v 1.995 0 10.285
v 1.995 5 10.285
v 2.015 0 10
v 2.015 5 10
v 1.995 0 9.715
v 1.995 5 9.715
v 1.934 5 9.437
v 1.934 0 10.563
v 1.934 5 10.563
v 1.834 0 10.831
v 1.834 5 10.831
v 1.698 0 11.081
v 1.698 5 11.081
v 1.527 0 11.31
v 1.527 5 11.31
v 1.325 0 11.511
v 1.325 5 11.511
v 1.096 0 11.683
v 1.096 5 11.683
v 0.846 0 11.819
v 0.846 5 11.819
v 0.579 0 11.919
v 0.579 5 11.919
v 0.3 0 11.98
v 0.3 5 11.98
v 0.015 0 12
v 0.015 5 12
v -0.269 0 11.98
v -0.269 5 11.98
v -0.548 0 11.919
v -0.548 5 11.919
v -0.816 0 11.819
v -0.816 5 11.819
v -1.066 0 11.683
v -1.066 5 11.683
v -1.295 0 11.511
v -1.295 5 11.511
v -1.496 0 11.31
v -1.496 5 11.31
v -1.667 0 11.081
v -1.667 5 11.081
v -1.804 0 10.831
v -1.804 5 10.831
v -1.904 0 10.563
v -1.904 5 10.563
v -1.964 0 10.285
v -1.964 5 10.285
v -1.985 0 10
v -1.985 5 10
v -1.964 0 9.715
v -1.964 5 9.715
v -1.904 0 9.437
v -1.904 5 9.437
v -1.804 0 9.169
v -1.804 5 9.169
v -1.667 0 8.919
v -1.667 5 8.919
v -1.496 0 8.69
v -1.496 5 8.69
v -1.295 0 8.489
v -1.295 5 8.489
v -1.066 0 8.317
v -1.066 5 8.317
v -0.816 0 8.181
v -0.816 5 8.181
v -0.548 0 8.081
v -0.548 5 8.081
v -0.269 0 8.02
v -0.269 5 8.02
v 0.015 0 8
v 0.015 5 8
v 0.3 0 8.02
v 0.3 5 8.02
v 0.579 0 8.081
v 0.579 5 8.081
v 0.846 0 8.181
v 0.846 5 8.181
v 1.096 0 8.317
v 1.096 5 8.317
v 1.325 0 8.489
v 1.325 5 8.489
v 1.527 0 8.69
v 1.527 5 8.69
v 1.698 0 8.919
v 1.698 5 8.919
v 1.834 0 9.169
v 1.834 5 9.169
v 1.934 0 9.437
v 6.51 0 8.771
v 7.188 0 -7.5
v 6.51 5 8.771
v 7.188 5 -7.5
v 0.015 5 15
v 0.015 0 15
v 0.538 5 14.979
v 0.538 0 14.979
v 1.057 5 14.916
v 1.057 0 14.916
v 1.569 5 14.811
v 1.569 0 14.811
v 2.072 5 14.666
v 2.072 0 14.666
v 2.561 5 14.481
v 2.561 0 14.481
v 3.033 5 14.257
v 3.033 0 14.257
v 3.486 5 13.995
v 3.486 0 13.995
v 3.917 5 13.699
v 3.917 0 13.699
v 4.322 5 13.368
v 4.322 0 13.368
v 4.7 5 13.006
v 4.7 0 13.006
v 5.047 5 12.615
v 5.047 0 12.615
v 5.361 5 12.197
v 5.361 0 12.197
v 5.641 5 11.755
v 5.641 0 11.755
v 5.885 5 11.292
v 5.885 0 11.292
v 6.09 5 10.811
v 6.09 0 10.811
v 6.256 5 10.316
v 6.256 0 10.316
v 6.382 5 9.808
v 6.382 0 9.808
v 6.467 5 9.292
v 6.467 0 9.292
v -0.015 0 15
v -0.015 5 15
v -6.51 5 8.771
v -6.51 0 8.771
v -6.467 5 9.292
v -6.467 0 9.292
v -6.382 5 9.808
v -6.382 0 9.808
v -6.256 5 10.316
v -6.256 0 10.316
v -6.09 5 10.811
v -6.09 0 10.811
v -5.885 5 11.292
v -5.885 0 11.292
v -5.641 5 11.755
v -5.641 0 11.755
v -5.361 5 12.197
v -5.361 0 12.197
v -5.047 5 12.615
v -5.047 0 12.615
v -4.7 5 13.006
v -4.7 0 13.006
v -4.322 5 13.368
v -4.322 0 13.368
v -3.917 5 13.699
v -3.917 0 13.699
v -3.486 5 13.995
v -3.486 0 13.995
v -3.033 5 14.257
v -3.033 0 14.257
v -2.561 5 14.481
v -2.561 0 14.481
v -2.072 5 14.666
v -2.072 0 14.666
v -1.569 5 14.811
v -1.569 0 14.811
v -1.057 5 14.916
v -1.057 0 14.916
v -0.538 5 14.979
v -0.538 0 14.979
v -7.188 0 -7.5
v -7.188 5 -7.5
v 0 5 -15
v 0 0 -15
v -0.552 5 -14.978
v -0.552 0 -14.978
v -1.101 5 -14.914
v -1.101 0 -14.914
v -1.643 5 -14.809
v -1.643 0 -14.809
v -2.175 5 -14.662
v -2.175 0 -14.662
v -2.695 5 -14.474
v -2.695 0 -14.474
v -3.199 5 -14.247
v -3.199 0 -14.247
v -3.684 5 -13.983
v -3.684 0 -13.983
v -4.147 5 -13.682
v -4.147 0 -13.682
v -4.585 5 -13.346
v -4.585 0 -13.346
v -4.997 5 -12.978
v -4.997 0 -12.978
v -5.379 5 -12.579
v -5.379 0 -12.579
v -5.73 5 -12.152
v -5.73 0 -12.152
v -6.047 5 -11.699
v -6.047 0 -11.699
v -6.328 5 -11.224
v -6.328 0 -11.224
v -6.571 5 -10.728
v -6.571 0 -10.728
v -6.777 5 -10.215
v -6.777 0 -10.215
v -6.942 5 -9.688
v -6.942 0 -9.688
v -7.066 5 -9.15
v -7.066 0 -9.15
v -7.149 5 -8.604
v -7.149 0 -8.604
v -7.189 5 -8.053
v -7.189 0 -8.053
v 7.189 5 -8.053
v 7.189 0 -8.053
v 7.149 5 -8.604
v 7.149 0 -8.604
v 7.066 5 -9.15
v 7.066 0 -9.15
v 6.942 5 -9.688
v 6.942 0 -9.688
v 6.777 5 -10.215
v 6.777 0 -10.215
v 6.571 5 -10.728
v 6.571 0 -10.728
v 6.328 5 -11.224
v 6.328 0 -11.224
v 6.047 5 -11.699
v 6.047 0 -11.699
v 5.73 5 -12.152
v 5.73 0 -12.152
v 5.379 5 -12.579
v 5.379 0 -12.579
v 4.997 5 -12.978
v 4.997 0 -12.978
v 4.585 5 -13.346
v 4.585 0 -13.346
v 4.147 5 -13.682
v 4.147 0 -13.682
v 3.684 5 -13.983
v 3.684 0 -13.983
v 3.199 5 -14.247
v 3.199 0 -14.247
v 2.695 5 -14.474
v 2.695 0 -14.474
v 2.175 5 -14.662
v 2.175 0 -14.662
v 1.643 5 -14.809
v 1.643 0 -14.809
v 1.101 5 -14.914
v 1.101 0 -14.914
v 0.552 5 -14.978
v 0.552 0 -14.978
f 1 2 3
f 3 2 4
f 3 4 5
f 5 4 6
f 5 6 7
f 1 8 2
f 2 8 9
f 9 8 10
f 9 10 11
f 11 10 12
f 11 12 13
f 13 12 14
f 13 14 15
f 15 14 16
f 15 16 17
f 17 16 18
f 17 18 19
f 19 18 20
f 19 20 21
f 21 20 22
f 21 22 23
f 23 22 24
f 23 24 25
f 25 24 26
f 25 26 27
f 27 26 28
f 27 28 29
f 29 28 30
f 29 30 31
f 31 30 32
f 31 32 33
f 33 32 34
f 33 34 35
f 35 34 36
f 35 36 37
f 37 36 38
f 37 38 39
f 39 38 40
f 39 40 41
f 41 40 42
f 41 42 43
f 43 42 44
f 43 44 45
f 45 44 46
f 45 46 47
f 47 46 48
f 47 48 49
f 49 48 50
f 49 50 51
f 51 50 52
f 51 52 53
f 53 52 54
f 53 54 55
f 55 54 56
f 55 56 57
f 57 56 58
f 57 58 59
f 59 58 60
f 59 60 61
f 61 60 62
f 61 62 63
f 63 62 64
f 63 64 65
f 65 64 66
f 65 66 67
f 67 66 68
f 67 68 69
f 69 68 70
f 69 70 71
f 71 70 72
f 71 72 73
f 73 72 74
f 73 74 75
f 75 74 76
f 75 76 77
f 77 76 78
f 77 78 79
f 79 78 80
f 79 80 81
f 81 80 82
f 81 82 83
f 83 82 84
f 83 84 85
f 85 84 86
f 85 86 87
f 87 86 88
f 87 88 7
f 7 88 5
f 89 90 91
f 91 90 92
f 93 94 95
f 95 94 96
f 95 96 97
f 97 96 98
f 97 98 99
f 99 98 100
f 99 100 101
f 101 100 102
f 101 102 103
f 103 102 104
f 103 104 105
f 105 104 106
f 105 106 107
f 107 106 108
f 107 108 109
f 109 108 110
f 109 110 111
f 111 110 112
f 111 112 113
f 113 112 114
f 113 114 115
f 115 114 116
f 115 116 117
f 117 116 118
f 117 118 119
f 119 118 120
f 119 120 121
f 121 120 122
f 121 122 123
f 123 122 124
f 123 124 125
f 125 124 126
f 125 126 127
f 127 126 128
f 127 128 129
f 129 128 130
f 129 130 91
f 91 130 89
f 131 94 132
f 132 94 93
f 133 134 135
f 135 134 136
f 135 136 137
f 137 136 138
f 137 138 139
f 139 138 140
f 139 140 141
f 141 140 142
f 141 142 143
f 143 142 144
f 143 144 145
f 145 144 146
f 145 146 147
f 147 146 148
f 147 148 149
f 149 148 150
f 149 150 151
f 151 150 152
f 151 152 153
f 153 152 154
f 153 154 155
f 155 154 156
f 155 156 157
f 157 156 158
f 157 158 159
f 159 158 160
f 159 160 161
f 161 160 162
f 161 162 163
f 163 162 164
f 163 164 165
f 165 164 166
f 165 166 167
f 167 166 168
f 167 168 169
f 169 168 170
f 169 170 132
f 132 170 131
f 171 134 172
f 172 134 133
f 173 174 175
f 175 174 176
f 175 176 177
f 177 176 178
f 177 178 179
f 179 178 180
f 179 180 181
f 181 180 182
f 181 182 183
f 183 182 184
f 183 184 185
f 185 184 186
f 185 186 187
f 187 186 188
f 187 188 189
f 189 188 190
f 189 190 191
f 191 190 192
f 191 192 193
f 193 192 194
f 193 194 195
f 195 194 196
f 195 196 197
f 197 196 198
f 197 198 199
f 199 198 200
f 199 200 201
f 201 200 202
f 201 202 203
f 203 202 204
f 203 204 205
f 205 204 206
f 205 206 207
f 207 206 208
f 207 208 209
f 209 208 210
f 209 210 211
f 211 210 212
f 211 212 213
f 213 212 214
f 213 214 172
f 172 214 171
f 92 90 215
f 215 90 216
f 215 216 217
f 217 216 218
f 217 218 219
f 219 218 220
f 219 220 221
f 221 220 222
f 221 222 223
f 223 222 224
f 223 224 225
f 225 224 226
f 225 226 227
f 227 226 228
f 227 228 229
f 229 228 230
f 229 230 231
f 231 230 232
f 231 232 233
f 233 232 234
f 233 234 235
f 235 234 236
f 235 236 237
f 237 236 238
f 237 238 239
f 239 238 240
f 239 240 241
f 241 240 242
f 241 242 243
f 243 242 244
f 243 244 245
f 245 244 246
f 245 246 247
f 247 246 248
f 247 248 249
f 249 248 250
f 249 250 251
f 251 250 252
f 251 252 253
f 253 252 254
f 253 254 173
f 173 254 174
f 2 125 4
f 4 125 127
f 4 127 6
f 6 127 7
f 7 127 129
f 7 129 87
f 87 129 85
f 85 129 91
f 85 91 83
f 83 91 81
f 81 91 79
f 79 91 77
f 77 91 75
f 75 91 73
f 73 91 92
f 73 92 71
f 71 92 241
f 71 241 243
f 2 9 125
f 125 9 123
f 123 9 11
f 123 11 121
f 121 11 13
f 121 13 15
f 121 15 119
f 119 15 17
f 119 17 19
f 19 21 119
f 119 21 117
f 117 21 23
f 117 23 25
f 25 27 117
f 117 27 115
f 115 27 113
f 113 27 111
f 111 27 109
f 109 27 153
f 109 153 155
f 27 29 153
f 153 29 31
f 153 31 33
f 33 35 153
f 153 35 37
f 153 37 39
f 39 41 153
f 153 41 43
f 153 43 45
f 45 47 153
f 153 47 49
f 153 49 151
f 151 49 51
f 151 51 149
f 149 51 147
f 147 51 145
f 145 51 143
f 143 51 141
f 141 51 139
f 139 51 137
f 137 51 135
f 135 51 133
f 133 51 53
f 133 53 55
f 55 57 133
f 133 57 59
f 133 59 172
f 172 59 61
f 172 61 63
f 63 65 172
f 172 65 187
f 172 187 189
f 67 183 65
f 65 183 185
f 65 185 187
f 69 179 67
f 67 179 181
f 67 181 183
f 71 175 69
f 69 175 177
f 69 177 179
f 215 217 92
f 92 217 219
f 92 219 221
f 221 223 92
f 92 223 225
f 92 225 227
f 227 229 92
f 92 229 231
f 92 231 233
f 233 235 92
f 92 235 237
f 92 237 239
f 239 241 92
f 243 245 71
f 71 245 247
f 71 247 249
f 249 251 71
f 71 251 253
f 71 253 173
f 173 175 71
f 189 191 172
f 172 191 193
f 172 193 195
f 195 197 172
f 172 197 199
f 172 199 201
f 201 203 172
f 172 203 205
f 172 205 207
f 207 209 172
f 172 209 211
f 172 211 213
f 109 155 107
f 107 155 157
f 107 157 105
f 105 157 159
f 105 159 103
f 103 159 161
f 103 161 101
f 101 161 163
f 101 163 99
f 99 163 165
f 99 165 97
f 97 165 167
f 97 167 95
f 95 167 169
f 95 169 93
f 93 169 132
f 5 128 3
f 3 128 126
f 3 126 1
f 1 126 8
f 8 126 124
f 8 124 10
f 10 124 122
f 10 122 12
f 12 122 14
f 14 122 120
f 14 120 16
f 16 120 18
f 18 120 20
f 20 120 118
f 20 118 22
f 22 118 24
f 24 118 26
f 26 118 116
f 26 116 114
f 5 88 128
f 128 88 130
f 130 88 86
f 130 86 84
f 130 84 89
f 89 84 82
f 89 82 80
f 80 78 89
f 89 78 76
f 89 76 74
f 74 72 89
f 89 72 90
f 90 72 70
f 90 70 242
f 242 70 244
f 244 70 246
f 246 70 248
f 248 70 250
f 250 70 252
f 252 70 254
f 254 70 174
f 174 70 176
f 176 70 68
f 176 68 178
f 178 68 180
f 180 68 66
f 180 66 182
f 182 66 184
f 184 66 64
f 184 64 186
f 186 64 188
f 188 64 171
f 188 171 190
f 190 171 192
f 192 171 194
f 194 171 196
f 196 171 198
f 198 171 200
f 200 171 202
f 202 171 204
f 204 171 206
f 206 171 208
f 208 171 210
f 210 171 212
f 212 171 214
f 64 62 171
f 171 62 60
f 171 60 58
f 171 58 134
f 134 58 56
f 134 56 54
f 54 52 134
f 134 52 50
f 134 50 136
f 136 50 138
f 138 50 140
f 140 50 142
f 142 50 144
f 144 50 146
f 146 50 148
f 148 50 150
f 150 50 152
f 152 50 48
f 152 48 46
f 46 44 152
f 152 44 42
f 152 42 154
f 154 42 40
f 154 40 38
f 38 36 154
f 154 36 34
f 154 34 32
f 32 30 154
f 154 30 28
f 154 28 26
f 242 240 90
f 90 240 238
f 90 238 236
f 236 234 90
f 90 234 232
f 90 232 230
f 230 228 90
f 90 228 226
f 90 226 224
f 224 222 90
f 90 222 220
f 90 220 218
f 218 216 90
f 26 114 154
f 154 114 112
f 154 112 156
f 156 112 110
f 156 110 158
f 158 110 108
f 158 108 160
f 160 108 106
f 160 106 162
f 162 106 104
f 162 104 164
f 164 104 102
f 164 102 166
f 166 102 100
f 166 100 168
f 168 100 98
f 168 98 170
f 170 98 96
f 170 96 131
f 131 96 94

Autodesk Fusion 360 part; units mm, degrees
sketch "Sketch1" plane through (0, 0, 0) normal (0, 1, 0) x (1, 0, 0)
  line L0 (-0.0152, -15) -> (0.0152, -15)
  line L1 (0.0062, 15) -> (-0.0062, 15)
  line L2 (0, 15) -> (0, -15) construction
  line L3 (-7.1875, 7.5003) -> (-6.5096, -8.7706)
  line L4 (7.1875, 7.5003) -> (6.5096, -8.7706)
  arc A0 (0.0062, 15) -> (-7.1875, 7.5003) centre (0.0062, 7.8) ccw
  arc A1 (7.1875, 7.5003) -> (-0.0062, 15) centre (-0.0062, 7.8) ccw
  arc A2 (-6.5096, -8.7706) -> (-0.0152, -15) centre (-0.0152, -8.5) ccw
  arc A3 (0.0152, -15) -> (6.5096, -8.7706) centre (0.0152, -8.5) ccw
  point P0 (-6.25, -15)
  point P1 (6.25, -15)
  point P2 (-7.5, 15)
  point P3 (7.5, 15)
  dimension "d1" = 12.5
  dimension "d2" = 15
  dimension "d3" = 30
  dimension "d4" = 15
  dimension "d6" = 7.2
  dimension "d7" = 6.5
extrude "Extrude1" add sketch "Sketch1" along normal blind 5
sketch "Sketch2" plane through (0, 5, 0) normal (0, 1, 0) x (-1, 0, 0)
  arc A0 (-7.1875, -7.5003) -> (0, -15) centre (0.0062, -7.8) ccw
  arc A1 (0, -15) -> (7.1875, -7.5003) centre (-0.0062, -7.8) ccw
  line L0 (7.1875, -7.5003) -> (6.5096, 8.7706)
  arc A2 (6.5096, 8.7706) -> (0.0152, 15) centre (0.0152, 8.5) ccw
  line L1 (0.0152, 15) -> (-0.0152, 15)
  arc A3 (-0.0152, 15) -> (-6.5096, 8.7706) centre (-0.0152, 8.5) ccw
  line L2 (-6.5096, 8.7706) -> (-7.1875, -7.5003)
  line L3 (-0.0152, 15) -> (-0.0152, 10) construction
  circle A4 centre (-0.0152, 10) radius 2
  dimension "d10" = 5
  dimension "d11" = 4
extrude "Extrude2" cut sketch "Sketch2" against normal blind 7 contours A4
